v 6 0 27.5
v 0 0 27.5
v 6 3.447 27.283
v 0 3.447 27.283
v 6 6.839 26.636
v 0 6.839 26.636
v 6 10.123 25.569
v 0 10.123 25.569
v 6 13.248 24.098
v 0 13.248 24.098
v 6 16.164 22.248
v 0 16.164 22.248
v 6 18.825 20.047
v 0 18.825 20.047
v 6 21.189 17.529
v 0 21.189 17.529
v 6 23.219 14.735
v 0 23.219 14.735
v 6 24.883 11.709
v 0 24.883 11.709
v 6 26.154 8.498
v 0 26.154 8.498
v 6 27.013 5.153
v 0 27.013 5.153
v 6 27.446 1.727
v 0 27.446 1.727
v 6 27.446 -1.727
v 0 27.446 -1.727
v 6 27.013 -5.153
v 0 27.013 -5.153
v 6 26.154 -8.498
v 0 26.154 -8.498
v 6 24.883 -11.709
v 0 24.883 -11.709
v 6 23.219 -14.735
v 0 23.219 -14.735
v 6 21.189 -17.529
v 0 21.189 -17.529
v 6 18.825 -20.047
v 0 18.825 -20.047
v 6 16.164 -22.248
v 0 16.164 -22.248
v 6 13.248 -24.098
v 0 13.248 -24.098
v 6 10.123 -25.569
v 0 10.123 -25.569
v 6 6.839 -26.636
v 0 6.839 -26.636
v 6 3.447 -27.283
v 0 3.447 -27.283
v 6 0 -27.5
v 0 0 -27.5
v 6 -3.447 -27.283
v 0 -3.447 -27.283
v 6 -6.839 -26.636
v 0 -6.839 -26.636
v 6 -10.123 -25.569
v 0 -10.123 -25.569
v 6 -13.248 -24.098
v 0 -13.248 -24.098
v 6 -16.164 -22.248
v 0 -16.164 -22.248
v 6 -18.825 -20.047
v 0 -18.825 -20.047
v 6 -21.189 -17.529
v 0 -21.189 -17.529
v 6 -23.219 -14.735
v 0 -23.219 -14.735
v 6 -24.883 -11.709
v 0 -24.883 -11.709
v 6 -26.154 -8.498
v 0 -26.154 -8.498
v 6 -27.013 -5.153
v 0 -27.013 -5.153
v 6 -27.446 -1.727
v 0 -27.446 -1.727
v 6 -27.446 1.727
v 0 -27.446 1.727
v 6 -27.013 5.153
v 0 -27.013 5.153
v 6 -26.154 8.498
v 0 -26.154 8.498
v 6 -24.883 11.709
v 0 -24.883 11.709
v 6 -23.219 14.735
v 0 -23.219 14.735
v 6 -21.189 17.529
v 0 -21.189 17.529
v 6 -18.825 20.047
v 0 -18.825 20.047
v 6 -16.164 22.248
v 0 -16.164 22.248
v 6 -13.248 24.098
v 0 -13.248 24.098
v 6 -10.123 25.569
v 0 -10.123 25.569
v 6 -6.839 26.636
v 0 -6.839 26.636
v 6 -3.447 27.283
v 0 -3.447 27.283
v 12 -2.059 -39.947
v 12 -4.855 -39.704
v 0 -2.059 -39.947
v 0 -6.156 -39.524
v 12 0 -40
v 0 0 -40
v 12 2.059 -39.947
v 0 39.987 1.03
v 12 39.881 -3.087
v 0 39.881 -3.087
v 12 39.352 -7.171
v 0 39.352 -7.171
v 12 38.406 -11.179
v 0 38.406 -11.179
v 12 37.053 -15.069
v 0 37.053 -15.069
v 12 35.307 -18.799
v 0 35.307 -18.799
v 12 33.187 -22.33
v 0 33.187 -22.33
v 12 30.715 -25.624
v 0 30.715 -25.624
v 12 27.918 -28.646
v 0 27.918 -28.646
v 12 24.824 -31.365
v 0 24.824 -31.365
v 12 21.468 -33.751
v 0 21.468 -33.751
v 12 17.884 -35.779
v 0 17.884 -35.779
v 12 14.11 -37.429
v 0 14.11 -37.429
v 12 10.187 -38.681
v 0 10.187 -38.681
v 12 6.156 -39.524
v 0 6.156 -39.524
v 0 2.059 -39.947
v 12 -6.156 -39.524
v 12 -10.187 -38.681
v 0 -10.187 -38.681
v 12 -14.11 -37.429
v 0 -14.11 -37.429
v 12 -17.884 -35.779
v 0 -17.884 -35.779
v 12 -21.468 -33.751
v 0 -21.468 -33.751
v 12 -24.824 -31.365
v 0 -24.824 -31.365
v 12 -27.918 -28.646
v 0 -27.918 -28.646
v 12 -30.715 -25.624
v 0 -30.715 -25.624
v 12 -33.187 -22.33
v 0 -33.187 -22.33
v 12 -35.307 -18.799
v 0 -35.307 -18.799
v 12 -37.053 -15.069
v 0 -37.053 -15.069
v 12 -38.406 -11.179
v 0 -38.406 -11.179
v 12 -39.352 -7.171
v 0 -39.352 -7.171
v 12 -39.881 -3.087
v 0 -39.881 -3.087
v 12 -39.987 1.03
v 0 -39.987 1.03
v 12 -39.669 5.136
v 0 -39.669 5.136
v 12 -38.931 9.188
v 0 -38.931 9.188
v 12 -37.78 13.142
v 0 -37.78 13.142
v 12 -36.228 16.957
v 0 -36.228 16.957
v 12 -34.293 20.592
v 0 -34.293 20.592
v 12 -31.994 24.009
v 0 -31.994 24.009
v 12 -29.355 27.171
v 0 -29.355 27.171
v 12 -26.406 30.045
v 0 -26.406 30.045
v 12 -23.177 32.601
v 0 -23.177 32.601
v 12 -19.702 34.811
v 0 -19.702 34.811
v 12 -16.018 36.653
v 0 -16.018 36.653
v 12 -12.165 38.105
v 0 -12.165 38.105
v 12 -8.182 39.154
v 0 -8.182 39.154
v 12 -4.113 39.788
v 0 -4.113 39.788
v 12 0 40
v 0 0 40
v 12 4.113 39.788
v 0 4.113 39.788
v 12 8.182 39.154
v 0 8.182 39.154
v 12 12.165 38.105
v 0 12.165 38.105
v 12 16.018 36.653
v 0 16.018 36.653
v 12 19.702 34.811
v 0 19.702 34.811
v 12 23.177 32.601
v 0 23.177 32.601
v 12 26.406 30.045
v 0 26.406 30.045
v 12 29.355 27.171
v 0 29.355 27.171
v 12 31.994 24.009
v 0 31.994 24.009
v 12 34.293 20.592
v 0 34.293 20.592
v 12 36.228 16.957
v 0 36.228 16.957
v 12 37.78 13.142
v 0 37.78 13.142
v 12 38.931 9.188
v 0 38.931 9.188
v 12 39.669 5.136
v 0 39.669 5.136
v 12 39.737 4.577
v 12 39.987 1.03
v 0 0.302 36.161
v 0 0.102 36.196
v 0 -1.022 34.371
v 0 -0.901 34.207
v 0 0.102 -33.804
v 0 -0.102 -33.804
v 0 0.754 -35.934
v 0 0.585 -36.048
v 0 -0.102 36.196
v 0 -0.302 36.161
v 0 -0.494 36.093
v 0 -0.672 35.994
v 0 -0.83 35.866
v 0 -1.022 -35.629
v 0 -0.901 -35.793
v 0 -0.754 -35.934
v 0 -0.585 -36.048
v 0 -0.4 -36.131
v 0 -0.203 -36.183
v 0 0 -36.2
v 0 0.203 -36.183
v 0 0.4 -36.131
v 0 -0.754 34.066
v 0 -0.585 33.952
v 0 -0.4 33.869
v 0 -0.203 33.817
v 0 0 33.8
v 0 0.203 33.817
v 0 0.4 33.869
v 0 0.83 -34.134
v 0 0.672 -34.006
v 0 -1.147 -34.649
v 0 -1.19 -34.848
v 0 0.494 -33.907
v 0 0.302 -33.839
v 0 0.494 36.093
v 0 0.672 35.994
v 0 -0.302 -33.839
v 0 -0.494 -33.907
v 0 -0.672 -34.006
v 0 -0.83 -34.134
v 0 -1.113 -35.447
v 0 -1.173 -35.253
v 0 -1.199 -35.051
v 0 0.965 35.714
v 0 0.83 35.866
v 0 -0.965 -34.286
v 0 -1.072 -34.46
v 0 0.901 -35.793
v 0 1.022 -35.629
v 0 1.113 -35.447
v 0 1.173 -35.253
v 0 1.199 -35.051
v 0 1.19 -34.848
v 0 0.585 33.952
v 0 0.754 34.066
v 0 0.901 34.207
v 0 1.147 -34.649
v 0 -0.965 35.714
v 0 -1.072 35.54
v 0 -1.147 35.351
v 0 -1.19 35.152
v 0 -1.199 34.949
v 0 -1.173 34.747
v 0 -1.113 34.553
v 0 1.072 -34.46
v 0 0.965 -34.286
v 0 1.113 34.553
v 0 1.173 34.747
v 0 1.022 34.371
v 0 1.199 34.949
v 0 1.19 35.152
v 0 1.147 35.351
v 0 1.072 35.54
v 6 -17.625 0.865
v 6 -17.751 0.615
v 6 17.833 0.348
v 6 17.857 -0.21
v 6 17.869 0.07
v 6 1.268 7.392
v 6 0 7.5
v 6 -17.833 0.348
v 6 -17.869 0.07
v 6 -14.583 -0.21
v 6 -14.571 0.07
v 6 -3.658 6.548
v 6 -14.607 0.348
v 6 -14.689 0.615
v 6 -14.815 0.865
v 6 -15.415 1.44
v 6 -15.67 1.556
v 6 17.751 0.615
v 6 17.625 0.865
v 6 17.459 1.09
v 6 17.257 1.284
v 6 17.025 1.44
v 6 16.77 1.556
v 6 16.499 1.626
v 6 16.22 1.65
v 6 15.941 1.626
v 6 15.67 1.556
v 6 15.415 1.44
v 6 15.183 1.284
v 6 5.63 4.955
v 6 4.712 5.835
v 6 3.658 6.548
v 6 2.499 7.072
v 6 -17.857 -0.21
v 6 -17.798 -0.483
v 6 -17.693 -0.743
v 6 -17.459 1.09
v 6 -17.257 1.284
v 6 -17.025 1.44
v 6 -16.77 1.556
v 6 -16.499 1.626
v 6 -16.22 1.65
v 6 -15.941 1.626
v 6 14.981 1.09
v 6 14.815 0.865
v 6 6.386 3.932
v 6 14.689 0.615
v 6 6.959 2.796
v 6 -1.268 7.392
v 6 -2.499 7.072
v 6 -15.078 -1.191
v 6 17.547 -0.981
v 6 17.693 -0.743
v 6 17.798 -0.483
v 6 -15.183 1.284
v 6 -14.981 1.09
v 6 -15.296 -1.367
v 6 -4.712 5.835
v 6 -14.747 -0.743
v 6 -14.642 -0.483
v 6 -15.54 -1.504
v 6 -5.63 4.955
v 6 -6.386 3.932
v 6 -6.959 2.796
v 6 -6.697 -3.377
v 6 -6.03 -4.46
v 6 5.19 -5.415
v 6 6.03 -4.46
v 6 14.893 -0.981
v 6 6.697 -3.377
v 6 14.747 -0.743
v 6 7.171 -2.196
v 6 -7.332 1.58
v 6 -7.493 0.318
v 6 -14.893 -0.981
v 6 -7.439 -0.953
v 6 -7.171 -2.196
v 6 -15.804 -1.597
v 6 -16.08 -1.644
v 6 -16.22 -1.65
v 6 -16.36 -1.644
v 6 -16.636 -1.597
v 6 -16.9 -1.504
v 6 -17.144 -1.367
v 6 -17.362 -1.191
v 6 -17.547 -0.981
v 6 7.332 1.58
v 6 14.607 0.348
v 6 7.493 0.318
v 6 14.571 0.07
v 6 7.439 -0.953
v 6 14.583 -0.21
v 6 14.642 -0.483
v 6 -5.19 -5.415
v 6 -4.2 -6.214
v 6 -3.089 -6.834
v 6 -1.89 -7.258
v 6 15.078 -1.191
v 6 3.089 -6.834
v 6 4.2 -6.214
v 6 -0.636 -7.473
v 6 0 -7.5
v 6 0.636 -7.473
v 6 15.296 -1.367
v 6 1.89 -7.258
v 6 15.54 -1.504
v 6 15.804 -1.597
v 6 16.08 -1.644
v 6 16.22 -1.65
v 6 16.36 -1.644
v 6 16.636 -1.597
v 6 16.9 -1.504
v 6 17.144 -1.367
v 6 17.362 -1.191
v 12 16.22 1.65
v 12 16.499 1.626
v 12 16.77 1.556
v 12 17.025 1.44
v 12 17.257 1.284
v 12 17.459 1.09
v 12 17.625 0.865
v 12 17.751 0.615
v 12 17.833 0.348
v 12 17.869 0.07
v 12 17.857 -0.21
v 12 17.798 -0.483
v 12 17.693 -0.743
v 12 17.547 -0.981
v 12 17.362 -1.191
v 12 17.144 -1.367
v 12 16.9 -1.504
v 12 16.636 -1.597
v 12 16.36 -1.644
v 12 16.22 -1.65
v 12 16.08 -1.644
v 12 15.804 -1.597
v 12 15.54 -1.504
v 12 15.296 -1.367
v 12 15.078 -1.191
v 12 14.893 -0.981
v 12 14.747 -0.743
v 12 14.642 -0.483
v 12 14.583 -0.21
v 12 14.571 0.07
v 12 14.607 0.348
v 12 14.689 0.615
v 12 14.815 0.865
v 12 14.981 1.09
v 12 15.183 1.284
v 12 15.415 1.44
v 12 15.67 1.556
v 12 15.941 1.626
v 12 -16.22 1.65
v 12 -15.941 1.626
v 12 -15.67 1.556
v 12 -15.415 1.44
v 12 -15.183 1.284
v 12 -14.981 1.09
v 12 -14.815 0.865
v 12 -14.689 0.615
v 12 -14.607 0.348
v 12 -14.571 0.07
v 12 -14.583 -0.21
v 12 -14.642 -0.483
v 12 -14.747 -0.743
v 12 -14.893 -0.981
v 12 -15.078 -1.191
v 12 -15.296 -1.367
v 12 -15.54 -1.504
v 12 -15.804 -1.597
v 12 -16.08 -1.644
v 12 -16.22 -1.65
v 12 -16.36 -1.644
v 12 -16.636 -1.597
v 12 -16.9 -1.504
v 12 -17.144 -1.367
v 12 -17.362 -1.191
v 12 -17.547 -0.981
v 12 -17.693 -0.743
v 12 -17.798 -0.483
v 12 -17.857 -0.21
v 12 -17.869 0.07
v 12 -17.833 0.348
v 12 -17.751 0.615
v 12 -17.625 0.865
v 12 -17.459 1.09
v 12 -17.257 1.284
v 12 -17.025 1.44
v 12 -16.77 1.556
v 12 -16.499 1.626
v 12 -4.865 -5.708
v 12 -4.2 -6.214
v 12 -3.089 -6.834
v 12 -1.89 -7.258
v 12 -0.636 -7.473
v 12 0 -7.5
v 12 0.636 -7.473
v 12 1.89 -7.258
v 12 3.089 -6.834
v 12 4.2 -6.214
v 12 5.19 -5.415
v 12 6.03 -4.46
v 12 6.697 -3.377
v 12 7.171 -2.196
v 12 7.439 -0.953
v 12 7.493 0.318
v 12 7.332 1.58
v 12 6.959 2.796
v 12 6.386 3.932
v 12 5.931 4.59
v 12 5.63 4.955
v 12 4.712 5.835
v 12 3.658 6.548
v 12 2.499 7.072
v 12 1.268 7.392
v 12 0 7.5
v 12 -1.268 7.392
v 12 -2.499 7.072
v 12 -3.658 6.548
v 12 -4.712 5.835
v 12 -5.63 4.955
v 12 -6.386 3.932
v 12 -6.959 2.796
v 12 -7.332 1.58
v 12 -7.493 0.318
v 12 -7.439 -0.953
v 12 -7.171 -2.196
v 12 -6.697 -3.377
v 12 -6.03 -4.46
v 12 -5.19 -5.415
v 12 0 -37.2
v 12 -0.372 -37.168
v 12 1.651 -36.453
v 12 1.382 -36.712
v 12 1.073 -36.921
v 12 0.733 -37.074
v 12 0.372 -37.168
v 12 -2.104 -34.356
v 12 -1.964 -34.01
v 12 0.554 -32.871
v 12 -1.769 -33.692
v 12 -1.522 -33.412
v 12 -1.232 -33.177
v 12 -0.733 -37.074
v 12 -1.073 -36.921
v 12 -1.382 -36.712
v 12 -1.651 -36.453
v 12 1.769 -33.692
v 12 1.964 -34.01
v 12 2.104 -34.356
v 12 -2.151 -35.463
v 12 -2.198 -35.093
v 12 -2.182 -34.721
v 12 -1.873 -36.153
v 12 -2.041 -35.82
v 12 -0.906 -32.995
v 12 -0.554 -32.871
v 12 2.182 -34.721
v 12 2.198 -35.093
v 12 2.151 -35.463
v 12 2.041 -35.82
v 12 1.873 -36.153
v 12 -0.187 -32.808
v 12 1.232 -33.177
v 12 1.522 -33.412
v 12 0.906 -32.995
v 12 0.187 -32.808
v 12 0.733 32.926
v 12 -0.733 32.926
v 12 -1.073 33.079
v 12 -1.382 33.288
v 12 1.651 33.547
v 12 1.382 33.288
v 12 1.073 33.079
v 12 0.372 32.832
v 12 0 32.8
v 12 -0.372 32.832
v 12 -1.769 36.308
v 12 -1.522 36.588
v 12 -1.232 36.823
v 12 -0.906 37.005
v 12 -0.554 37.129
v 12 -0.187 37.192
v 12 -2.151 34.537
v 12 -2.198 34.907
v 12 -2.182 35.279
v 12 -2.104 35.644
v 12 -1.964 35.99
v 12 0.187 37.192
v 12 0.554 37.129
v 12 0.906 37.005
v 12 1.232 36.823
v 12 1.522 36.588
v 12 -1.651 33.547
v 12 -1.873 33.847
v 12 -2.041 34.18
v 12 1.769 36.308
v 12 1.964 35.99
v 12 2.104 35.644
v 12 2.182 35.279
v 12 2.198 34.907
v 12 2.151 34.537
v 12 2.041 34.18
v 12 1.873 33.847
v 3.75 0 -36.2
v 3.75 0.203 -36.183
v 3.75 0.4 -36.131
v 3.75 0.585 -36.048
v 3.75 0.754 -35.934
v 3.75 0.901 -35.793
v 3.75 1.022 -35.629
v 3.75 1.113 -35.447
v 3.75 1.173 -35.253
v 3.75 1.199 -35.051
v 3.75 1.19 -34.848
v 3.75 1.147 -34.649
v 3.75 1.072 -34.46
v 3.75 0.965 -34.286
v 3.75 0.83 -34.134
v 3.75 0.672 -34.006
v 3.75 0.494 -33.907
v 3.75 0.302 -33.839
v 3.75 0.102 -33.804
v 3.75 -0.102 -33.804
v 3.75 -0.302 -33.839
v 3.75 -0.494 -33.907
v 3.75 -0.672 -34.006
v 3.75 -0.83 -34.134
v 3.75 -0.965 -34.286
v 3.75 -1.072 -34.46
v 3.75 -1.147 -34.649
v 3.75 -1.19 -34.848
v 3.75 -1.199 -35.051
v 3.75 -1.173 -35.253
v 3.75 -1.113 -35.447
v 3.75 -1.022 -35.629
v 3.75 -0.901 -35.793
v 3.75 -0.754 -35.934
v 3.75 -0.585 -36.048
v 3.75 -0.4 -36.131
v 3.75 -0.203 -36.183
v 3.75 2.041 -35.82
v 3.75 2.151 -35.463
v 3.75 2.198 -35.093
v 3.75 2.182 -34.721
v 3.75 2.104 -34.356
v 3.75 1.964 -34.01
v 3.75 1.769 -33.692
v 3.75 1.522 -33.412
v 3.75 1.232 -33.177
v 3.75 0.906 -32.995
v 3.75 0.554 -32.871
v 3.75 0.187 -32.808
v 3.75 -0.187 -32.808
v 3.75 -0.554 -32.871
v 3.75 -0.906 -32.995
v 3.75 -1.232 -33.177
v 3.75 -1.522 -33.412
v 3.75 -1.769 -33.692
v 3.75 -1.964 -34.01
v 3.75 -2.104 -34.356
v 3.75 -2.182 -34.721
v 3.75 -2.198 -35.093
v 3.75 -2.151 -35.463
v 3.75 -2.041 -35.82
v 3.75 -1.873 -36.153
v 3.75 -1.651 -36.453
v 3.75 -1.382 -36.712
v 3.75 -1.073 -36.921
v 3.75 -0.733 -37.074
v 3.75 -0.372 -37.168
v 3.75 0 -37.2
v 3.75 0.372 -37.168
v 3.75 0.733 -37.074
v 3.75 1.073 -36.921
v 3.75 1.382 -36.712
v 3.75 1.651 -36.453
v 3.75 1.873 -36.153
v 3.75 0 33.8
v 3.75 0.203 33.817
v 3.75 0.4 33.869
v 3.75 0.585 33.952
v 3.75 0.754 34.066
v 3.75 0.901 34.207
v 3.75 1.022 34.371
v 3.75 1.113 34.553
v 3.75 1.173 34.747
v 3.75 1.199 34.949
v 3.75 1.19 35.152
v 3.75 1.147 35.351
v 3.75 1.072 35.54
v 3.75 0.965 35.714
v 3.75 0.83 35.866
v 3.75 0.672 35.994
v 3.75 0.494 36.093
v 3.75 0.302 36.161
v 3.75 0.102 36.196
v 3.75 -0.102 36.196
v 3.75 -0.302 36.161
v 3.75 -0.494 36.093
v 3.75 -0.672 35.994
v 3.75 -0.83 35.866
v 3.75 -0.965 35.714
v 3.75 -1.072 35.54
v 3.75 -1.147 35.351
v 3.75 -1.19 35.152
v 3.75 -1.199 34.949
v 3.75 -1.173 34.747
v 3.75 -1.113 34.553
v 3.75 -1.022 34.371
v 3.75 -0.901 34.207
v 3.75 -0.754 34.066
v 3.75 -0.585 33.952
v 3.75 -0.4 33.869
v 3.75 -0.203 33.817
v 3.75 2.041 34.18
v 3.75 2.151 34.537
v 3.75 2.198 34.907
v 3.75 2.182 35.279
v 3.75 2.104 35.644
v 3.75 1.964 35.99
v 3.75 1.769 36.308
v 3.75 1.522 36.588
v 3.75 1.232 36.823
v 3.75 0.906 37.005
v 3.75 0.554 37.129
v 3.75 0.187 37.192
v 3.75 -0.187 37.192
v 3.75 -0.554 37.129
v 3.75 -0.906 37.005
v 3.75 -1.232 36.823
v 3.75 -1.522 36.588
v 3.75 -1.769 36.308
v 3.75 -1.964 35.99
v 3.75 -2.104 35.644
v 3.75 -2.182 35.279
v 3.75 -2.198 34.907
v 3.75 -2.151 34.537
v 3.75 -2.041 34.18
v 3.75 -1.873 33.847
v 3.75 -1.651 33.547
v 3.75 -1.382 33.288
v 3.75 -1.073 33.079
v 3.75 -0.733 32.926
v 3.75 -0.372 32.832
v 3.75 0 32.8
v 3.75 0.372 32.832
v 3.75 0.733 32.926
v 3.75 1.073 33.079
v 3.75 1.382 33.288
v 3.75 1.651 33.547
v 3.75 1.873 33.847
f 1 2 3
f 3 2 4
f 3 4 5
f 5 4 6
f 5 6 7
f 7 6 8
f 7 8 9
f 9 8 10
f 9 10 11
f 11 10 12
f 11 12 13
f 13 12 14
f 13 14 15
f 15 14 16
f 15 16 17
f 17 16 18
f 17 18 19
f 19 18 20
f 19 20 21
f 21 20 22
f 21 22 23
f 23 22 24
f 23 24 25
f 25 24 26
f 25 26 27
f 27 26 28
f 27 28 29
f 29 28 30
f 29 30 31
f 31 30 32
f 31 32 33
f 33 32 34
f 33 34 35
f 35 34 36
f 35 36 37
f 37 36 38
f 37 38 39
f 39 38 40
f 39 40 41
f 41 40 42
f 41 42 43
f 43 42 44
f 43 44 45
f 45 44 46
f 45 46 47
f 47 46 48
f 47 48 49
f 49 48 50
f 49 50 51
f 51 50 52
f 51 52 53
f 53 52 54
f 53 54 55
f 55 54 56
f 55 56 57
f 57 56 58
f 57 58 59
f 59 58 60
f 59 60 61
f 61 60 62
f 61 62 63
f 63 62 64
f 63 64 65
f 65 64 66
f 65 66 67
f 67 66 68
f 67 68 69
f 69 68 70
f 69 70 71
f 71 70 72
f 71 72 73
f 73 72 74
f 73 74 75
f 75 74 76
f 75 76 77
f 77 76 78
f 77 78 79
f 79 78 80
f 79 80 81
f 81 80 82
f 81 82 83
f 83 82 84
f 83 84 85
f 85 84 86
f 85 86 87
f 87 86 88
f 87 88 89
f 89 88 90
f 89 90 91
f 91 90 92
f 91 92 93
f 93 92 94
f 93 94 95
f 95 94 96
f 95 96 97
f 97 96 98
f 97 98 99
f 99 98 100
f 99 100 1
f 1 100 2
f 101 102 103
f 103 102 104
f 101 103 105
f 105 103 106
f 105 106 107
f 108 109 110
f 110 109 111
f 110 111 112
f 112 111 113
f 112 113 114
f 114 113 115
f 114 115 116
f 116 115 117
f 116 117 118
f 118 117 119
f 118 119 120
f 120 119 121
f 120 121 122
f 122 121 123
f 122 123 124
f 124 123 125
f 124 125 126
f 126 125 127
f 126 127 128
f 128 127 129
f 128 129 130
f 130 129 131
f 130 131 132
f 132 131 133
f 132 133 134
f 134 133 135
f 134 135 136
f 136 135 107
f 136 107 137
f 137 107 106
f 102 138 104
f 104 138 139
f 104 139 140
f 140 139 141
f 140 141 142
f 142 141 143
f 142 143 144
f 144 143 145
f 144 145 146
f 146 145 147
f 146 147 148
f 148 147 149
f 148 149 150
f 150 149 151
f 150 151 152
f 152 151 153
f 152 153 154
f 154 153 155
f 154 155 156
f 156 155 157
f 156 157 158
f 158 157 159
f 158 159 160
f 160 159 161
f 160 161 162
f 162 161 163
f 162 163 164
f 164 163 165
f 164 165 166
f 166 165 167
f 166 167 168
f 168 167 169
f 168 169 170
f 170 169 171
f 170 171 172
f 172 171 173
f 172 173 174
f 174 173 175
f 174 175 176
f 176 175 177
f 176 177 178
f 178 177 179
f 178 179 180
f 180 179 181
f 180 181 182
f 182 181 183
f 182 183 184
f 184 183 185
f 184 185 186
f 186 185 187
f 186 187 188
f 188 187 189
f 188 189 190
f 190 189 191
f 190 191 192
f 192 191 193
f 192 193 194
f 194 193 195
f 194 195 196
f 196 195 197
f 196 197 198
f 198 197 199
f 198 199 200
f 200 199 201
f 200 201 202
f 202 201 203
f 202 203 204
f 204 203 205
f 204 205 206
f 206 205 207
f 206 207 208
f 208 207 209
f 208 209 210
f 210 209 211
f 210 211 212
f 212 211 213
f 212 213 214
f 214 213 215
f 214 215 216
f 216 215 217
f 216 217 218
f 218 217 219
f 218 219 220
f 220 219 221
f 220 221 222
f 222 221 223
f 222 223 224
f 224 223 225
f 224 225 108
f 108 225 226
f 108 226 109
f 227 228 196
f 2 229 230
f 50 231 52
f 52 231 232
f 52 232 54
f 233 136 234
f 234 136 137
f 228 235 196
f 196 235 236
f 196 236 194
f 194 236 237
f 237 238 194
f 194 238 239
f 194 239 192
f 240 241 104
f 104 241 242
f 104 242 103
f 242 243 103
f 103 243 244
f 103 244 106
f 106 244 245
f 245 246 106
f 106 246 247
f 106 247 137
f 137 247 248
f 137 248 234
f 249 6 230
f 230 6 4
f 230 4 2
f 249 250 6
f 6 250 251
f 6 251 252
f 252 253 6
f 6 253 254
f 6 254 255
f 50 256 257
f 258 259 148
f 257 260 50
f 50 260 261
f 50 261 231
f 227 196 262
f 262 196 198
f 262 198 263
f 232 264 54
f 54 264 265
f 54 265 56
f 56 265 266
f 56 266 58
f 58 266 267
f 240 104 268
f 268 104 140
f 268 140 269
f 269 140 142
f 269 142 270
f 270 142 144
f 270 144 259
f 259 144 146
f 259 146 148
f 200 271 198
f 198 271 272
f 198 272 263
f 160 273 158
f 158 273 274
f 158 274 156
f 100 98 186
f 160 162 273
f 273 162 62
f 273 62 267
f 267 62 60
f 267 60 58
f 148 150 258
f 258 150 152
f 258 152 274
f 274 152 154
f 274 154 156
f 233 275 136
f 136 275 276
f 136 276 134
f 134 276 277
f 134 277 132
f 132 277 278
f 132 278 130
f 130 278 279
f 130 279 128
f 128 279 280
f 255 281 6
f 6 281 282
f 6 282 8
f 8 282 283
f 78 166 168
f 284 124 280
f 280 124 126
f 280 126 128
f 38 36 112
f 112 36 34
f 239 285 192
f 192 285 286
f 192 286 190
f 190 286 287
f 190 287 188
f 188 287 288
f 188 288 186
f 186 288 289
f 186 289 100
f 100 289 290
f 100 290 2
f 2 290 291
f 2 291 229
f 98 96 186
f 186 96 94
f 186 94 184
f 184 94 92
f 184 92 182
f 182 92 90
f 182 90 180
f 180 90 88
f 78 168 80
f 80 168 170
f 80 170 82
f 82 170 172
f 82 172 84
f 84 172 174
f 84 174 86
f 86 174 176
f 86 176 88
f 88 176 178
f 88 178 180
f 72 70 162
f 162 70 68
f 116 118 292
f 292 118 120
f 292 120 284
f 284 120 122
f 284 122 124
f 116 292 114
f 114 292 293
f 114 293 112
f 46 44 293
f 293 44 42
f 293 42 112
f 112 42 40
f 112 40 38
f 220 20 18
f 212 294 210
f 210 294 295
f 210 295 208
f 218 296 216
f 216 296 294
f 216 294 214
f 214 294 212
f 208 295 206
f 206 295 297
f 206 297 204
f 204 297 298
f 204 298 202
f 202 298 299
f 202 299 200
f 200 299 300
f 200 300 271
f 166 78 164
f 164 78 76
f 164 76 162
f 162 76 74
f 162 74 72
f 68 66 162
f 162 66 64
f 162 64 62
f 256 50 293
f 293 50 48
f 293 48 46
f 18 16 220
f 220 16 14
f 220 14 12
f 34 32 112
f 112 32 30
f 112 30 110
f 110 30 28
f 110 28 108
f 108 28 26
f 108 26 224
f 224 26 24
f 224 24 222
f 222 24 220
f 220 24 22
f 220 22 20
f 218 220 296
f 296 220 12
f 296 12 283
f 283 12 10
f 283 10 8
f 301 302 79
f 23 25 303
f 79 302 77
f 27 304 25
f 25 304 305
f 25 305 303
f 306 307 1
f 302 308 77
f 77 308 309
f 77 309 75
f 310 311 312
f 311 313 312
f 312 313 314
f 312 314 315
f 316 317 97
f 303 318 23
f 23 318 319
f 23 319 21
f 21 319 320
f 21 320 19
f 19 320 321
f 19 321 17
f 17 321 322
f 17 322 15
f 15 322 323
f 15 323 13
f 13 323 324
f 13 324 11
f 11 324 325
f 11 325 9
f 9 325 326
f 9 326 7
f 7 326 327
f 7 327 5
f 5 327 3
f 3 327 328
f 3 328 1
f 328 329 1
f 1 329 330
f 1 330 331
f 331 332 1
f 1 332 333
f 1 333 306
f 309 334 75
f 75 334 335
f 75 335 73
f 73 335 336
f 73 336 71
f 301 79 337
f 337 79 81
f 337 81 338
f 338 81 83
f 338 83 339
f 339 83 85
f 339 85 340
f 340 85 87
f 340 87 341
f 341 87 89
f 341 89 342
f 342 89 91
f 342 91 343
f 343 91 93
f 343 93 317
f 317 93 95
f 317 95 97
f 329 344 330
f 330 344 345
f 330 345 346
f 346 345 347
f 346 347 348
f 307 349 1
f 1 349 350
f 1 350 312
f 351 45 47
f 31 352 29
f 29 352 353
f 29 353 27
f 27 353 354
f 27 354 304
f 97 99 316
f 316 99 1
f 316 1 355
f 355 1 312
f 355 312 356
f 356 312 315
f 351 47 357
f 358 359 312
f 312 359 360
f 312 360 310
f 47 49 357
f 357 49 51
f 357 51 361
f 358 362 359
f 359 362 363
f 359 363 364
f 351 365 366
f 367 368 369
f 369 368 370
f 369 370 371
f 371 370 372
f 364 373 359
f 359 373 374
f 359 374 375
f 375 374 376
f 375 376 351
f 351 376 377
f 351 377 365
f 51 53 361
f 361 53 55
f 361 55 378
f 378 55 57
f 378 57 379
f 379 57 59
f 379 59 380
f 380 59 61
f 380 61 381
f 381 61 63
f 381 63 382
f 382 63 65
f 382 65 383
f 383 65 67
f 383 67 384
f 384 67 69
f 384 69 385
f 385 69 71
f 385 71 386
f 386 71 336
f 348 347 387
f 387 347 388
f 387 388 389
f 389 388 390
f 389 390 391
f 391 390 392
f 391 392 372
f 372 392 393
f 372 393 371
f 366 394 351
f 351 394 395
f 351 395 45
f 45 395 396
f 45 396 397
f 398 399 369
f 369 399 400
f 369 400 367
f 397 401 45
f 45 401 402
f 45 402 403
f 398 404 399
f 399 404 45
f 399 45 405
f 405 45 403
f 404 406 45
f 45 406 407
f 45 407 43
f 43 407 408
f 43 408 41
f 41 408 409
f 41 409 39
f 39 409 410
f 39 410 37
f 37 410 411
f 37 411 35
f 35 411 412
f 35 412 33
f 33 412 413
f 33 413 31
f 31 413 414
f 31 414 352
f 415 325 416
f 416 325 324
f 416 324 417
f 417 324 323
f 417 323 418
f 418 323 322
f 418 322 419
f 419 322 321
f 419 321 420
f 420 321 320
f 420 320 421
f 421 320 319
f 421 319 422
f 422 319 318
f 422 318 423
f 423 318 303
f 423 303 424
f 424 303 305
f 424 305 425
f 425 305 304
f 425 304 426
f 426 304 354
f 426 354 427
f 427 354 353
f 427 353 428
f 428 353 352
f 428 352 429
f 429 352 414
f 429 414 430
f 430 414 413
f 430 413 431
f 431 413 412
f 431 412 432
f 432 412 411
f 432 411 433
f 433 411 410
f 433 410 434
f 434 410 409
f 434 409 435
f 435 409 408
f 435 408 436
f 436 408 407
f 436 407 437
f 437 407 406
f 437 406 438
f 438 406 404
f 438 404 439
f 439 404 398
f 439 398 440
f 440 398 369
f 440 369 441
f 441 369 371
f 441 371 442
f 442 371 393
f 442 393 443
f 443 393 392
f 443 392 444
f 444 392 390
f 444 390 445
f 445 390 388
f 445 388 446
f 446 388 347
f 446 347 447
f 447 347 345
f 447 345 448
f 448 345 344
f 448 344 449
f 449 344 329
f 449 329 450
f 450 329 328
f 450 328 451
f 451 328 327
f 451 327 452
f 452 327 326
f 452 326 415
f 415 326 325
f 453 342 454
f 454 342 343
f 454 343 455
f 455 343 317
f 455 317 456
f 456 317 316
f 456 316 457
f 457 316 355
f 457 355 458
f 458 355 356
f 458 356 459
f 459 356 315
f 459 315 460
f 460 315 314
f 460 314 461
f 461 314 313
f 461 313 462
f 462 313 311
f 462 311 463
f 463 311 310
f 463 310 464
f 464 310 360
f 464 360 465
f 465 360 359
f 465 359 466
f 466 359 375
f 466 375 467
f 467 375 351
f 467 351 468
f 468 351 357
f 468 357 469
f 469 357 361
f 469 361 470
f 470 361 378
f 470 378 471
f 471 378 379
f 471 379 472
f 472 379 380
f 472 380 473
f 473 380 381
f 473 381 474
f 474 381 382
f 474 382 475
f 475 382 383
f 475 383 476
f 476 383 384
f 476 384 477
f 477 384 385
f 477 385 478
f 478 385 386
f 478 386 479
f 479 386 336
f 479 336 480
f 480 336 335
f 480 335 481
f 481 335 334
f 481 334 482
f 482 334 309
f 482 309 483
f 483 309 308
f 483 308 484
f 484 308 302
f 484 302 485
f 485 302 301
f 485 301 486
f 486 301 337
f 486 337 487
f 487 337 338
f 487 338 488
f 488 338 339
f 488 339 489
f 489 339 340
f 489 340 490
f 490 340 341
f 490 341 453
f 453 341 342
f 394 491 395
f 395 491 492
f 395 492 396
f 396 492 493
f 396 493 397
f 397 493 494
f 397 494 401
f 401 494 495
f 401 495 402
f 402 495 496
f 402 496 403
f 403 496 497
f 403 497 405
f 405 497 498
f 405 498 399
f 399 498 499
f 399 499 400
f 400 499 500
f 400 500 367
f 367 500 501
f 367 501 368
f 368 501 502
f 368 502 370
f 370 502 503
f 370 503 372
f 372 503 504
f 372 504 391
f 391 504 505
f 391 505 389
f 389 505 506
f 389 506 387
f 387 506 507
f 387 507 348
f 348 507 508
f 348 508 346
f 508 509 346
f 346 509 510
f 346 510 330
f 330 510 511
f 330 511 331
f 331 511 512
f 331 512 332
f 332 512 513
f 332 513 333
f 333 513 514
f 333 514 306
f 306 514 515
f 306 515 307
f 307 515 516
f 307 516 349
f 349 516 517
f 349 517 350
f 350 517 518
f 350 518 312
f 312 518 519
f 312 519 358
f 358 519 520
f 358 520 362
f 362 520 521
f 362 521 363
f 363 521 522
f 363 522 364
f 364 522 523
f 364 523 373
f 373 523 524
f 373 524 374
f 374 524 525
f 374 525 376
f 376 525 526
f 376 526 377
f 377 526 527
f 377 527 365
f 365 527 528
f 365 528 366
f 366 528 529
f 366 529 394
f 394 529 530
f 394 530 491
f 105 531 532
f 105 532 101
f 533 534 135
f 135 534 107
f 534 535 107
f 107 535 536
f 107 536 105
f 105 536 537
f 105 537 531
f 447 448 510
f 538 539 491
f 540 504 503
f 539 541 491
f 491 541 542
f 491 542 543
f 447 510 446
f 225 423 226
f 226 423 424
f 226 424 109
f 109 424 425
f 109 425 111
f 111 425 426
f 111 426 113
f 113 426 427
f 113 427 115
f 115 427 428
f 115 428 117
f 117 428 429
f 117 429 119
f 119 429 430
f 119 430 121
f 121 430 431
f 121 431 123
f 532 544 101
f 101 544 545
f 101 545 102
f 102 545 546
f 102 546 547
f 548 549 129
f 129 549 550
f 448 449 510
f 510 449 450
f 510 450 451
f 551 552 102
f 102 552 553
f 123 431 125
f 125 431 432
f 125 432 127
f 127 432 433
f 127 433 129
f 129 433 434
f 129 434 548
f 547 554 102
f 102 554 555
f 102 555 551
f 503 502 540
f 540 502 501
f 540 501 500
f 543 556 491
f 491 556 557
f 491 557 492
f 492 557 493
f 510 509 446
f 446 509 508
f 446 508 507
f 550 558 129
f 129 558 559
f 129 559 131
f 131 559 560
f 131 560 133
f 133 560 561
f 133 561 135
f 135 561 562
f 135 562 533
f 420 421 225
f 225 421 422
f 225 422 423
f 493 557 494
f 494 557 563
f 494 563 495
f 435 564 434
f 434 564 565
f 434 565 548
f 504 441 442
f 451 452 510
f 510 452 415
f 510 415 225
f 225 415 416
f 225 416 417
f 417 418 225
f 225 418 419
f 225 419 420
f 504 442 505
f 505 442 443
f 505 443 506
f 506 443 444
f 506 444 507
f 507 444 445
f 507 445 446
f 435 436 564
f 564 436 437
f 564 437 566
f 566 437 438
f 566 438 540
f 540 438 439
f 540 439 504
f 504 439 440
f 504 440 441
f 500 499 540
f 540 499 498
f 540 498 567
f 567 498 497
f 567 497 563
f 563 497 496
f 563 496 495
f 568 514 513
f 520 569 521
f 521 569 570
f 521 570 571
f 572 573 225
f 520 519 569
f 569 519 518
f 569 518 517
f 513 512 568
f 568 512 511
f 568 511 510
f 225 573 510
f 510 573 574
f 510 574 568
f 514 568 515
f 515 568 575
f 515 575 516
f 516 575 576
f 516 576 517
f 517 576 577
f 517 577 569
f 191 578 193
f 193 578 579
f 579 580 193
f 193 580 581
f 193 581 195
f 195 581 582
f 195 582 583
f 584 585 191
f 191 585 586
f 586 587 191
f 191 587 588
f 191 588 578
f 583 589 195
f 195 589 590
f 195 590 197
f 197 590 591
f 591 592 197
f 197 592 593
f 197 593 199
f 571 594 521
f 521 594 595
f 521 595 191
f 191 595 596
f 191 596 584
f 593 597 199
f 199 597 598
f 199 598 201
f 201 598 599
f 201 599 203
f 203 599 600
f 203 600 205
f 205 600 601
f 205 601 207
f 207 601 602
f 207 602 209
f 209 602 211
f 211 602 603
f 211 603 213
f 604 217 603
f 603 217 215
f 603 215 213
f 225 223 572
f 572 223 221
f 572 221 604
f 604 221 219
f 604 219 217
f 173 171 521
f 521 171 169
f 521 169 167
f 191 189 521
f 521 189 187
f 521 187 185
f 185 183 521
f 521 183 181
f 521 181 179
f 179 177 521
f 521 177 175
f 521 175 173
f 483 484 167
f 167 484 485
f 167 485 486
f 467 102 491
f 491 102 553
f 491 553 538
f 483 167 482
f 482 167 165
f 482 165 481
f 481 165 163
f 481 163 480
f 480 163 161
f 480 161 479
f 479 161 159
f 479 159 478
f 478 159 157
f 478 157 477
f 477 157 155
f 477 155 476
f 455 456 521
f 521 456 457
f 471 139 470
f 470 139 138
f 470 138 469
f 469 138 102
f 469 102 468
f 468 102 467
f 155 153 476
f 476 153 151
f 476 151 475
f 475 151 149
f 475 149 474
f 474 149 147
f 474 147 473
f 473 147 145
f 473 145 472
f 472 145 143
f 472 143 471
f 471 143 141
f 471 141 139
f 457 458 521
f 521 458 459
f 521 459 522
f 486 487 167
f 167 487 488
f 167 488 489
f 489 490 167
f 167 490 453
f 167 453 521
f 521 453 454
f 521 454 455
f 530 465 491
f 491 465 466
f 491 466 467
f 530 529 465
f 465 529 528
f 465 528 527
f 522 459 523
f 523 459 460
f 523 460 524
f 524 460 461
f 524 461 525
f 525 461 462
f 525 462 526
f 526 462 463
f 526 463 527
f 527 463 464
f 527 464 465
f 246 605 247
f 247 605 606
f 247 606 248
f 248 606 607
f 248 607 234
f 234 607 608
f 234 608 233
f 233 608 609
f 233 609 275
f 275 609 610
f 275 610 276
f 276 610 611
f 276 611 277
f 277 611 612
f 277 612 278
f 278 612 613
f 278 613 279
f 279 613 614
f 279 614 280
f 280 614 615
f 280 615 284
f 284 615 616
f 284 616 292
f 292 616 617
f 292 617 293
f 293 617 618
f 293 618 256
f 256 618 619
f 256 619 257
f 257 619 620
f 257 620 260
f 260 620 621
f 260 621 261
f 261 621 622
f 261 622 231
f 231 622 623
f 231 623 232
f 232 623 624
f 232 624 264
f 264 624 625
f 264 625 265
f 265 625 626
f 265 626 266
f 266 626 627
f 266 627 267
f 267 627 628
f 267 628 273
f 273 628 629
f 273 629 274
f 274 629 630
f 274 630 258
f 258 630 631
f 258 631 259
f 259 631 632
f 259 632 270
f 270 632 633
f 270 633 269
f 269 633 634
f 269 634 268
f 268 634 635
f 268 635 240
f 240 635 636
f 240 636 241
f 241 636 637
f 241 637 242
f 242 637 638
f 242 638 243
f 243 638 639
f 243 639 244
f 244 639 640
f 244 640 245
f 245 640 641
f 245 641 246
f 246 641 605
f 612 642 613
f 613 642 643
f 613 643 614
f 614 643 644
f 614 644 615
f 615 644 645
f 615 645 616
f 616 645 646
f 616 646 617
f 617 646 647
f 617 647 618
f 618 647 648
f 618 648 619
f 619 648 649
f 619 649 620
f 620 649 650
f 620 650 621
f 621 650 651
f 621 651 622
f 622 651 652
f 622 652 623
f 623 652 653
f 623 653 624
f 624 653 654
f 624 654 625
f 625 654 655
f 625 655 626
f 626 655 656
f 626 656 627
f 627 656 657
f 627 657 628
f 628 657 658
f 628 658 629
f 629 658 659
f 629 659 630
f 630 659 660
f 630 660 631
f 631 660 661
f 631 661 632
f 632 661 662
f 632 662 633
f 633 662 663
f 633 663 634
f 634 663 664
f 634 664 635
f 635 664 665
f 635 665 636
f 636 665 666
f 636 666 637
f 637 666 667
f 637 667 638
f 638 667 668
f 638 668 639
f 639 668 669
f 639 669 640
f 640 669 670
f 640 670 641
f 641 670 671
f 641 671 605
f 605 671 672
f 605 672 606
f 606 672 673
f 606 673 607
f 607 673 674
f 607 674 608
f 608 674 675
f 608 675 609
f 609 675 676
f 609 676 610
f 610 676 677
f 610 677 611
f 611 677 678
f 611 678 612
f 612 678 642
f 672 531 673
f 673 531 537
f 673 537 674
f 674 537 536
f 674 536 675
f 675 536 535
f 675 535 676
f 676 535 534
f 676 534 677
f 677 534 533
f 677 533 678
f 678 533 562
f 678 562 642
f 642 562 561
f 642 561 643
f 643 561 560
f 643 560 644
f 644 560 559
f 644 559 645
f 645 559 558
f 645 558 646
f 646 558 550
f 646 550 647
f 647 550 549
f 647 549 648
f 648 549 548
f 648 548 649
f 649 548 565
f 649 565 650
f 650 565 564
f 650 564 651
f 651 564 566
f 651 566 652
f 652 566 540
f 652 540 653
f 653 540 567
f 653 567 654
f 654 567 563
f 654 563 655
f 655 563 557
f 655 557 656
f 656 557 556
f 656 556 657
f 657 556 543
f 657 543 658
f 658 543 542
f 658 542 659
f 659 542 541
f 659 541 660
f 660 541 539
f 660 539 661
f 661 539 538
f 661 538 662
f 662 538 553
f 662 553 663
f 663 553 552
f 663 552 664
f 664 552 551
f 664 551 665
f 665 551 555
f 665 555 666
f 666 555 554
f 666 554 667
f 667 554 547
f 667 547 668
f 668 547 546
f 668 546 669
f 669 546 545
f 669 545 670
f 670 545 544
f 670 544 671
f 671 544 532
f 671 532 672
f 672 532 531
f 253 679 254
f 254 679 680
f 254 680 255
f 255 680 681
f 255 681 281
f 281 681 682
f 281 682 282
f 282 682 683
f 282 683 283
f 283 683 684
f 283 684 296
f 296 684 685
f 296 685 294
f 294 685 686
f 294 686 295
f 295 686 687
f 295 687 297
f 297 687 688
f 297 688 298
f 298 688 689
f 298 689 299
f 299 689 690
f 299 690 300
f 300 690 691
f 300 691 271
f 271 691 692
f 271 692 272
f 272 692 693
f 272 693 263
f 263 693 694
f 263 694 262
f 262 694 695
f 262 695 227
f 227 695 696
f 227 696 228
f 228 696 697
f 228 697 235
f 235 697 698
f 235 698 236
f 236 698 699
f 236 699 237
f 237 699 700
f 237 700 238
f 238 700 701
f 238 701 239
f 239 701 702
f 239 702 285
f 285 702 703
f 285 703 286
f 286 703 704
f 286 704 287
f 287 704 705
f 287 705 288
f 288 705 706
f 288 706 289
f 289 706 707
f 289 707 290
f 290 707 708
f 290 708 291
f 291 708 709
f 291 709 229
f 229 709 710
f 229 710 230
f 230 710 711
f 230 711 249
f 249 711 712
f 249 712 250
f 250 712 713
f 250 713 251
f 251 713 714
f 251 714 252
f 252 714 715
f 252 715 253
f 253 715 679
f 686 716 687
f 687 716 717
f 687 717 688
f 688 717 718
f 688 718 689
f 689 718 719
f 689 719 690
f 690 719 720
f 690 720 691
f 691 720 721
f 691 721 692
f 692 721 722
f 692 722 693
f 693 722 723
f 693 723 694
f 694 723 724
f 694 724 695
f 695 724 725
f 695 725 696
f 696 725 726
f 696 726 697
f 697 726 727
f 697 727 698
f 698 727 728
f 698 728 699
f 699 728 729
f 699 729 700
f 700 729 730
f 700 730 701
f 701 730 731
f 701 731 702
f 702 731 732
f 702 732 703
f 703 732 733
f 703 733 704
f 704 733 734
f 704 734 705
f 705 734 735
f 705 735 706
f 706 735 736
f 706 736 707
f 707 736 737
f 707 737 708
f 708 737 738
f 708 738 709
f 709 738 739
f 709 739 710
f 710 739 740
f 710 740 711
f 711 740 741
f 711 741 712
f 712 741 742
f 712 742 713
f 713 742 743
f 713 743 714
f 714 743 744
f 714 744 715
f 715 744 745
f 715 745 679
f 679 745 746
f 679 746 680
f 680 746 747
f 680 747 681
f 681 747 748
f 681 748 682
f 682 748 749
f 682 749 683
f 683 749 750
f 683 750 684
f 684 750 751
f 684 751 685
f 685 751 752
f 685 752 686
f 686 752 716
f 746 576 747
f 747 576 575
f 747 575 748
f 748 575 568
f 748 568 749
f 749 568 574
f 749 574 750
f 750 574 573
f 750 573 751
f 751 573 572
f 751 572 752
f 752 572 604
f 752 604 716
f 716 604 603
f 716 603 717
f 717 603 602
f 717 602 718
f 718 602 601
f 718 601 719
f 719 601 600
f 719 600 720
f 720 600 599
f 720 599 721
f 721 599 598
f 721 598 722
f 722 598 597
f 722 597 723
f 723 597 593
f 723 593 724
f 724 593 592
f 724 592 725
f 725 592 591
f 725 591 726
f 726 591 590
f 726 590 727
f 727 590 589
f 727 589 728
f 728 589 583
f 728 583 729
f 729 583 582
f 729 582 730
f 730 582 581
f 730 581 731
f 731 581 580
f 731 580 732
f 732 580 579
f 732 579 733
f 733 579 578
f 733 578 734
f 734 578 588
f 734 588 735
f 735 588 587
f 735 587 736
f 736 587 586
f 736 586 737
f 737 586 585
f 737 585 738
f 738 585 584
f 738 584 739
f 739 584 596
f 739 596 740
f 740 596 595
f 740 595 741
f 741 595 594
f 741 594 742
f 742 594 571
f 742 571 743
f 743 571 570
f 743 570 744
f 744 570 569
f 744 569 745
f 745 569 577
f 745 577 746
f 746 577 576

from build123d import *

# Parameters (mm, degrees)
SKETCH1_R                      = 40
SKETCH1_R_2                    = 27.5
BOSS_EXTRUDE1_DEPTH            = 6
SKETCH4_R                      = 40
SKETCH4_R_2                    = 1.65
SKETCH4_R_3                    = 7.5
BOSS_EXTRUDE3_DEPTH            = 6
CBORE_FOR_M2_SHCS1_D           = 2.4
CBORE_FOR_M2_SHCS1_DEPTH       = 12
CBORE_FOR_M2_SHCS1_CBORE_D     = 4.4
CBORE_FOR_M2_SHCS1_CBORE_DEPTH = 8.25


with BuildPart() as part:
    # Sketch1 → Boss-Extrude1 (new body)
    with BuildSketch(Plane(origin=(0, 0, 0), x_dir=(0, 0, -1), z_dir=(1, 0, 0))):
        Circle(SKETCH1_R)
        Circle(SKETCH1_R_2, mode=Mode.SUBTRACT)
    extrude(amount=BOSS_EXTRUDE1_DEPTH)

    # Sketch4 → Boss-Extrude3 (add)
    with BuildSketch(Plane(origin=(6, 0, 8), x_dir=(0, 1, 0), z_dir=(1, 0, 0))):
        with Locations(Location((0, -8, 0), (0, 0, 270))):
            Circle(SKETCH4_R)
        with Locations(Location((-16.22, -8, 0), (0, 0, 270))):
            Circle(SKETCH4_R_2, mode=Mode.SUBTRACT)
        with Locations(Location((16.22, -8, 0), (0, 0, 270))):
            Circle(SKETCH4_R_2, mode=Mode.SUBTRACT)
        with Locations(Location((0, -8, 0), (0, 0, 270))):
            Circle(SKETCH4_R_3, mode=Mode.SUBTRACT)
    extrude(amount=BOSS_EXTRUDE3_DEPTH)

    # CBORE for M2 SHCS1
    with Locations(Plane(origin=(12, 0, 0), x_dir=(0, 0, -1), z_dir=(1, 0, 0))):
        with Locations((0, 0), (-35, 0), (35, 0)):
            CounterBoreHole(CBORE_FOR_M2_SHCS1_D / 2, CBORE_FOR_M2_SHCS1_CBORE_D / 2, CBORE_FOR_M2_SHCS1_CBORE_DEPTH, depth=CBORE_FOR_M2_SHCS1_DEPTH)


solid = part.part
